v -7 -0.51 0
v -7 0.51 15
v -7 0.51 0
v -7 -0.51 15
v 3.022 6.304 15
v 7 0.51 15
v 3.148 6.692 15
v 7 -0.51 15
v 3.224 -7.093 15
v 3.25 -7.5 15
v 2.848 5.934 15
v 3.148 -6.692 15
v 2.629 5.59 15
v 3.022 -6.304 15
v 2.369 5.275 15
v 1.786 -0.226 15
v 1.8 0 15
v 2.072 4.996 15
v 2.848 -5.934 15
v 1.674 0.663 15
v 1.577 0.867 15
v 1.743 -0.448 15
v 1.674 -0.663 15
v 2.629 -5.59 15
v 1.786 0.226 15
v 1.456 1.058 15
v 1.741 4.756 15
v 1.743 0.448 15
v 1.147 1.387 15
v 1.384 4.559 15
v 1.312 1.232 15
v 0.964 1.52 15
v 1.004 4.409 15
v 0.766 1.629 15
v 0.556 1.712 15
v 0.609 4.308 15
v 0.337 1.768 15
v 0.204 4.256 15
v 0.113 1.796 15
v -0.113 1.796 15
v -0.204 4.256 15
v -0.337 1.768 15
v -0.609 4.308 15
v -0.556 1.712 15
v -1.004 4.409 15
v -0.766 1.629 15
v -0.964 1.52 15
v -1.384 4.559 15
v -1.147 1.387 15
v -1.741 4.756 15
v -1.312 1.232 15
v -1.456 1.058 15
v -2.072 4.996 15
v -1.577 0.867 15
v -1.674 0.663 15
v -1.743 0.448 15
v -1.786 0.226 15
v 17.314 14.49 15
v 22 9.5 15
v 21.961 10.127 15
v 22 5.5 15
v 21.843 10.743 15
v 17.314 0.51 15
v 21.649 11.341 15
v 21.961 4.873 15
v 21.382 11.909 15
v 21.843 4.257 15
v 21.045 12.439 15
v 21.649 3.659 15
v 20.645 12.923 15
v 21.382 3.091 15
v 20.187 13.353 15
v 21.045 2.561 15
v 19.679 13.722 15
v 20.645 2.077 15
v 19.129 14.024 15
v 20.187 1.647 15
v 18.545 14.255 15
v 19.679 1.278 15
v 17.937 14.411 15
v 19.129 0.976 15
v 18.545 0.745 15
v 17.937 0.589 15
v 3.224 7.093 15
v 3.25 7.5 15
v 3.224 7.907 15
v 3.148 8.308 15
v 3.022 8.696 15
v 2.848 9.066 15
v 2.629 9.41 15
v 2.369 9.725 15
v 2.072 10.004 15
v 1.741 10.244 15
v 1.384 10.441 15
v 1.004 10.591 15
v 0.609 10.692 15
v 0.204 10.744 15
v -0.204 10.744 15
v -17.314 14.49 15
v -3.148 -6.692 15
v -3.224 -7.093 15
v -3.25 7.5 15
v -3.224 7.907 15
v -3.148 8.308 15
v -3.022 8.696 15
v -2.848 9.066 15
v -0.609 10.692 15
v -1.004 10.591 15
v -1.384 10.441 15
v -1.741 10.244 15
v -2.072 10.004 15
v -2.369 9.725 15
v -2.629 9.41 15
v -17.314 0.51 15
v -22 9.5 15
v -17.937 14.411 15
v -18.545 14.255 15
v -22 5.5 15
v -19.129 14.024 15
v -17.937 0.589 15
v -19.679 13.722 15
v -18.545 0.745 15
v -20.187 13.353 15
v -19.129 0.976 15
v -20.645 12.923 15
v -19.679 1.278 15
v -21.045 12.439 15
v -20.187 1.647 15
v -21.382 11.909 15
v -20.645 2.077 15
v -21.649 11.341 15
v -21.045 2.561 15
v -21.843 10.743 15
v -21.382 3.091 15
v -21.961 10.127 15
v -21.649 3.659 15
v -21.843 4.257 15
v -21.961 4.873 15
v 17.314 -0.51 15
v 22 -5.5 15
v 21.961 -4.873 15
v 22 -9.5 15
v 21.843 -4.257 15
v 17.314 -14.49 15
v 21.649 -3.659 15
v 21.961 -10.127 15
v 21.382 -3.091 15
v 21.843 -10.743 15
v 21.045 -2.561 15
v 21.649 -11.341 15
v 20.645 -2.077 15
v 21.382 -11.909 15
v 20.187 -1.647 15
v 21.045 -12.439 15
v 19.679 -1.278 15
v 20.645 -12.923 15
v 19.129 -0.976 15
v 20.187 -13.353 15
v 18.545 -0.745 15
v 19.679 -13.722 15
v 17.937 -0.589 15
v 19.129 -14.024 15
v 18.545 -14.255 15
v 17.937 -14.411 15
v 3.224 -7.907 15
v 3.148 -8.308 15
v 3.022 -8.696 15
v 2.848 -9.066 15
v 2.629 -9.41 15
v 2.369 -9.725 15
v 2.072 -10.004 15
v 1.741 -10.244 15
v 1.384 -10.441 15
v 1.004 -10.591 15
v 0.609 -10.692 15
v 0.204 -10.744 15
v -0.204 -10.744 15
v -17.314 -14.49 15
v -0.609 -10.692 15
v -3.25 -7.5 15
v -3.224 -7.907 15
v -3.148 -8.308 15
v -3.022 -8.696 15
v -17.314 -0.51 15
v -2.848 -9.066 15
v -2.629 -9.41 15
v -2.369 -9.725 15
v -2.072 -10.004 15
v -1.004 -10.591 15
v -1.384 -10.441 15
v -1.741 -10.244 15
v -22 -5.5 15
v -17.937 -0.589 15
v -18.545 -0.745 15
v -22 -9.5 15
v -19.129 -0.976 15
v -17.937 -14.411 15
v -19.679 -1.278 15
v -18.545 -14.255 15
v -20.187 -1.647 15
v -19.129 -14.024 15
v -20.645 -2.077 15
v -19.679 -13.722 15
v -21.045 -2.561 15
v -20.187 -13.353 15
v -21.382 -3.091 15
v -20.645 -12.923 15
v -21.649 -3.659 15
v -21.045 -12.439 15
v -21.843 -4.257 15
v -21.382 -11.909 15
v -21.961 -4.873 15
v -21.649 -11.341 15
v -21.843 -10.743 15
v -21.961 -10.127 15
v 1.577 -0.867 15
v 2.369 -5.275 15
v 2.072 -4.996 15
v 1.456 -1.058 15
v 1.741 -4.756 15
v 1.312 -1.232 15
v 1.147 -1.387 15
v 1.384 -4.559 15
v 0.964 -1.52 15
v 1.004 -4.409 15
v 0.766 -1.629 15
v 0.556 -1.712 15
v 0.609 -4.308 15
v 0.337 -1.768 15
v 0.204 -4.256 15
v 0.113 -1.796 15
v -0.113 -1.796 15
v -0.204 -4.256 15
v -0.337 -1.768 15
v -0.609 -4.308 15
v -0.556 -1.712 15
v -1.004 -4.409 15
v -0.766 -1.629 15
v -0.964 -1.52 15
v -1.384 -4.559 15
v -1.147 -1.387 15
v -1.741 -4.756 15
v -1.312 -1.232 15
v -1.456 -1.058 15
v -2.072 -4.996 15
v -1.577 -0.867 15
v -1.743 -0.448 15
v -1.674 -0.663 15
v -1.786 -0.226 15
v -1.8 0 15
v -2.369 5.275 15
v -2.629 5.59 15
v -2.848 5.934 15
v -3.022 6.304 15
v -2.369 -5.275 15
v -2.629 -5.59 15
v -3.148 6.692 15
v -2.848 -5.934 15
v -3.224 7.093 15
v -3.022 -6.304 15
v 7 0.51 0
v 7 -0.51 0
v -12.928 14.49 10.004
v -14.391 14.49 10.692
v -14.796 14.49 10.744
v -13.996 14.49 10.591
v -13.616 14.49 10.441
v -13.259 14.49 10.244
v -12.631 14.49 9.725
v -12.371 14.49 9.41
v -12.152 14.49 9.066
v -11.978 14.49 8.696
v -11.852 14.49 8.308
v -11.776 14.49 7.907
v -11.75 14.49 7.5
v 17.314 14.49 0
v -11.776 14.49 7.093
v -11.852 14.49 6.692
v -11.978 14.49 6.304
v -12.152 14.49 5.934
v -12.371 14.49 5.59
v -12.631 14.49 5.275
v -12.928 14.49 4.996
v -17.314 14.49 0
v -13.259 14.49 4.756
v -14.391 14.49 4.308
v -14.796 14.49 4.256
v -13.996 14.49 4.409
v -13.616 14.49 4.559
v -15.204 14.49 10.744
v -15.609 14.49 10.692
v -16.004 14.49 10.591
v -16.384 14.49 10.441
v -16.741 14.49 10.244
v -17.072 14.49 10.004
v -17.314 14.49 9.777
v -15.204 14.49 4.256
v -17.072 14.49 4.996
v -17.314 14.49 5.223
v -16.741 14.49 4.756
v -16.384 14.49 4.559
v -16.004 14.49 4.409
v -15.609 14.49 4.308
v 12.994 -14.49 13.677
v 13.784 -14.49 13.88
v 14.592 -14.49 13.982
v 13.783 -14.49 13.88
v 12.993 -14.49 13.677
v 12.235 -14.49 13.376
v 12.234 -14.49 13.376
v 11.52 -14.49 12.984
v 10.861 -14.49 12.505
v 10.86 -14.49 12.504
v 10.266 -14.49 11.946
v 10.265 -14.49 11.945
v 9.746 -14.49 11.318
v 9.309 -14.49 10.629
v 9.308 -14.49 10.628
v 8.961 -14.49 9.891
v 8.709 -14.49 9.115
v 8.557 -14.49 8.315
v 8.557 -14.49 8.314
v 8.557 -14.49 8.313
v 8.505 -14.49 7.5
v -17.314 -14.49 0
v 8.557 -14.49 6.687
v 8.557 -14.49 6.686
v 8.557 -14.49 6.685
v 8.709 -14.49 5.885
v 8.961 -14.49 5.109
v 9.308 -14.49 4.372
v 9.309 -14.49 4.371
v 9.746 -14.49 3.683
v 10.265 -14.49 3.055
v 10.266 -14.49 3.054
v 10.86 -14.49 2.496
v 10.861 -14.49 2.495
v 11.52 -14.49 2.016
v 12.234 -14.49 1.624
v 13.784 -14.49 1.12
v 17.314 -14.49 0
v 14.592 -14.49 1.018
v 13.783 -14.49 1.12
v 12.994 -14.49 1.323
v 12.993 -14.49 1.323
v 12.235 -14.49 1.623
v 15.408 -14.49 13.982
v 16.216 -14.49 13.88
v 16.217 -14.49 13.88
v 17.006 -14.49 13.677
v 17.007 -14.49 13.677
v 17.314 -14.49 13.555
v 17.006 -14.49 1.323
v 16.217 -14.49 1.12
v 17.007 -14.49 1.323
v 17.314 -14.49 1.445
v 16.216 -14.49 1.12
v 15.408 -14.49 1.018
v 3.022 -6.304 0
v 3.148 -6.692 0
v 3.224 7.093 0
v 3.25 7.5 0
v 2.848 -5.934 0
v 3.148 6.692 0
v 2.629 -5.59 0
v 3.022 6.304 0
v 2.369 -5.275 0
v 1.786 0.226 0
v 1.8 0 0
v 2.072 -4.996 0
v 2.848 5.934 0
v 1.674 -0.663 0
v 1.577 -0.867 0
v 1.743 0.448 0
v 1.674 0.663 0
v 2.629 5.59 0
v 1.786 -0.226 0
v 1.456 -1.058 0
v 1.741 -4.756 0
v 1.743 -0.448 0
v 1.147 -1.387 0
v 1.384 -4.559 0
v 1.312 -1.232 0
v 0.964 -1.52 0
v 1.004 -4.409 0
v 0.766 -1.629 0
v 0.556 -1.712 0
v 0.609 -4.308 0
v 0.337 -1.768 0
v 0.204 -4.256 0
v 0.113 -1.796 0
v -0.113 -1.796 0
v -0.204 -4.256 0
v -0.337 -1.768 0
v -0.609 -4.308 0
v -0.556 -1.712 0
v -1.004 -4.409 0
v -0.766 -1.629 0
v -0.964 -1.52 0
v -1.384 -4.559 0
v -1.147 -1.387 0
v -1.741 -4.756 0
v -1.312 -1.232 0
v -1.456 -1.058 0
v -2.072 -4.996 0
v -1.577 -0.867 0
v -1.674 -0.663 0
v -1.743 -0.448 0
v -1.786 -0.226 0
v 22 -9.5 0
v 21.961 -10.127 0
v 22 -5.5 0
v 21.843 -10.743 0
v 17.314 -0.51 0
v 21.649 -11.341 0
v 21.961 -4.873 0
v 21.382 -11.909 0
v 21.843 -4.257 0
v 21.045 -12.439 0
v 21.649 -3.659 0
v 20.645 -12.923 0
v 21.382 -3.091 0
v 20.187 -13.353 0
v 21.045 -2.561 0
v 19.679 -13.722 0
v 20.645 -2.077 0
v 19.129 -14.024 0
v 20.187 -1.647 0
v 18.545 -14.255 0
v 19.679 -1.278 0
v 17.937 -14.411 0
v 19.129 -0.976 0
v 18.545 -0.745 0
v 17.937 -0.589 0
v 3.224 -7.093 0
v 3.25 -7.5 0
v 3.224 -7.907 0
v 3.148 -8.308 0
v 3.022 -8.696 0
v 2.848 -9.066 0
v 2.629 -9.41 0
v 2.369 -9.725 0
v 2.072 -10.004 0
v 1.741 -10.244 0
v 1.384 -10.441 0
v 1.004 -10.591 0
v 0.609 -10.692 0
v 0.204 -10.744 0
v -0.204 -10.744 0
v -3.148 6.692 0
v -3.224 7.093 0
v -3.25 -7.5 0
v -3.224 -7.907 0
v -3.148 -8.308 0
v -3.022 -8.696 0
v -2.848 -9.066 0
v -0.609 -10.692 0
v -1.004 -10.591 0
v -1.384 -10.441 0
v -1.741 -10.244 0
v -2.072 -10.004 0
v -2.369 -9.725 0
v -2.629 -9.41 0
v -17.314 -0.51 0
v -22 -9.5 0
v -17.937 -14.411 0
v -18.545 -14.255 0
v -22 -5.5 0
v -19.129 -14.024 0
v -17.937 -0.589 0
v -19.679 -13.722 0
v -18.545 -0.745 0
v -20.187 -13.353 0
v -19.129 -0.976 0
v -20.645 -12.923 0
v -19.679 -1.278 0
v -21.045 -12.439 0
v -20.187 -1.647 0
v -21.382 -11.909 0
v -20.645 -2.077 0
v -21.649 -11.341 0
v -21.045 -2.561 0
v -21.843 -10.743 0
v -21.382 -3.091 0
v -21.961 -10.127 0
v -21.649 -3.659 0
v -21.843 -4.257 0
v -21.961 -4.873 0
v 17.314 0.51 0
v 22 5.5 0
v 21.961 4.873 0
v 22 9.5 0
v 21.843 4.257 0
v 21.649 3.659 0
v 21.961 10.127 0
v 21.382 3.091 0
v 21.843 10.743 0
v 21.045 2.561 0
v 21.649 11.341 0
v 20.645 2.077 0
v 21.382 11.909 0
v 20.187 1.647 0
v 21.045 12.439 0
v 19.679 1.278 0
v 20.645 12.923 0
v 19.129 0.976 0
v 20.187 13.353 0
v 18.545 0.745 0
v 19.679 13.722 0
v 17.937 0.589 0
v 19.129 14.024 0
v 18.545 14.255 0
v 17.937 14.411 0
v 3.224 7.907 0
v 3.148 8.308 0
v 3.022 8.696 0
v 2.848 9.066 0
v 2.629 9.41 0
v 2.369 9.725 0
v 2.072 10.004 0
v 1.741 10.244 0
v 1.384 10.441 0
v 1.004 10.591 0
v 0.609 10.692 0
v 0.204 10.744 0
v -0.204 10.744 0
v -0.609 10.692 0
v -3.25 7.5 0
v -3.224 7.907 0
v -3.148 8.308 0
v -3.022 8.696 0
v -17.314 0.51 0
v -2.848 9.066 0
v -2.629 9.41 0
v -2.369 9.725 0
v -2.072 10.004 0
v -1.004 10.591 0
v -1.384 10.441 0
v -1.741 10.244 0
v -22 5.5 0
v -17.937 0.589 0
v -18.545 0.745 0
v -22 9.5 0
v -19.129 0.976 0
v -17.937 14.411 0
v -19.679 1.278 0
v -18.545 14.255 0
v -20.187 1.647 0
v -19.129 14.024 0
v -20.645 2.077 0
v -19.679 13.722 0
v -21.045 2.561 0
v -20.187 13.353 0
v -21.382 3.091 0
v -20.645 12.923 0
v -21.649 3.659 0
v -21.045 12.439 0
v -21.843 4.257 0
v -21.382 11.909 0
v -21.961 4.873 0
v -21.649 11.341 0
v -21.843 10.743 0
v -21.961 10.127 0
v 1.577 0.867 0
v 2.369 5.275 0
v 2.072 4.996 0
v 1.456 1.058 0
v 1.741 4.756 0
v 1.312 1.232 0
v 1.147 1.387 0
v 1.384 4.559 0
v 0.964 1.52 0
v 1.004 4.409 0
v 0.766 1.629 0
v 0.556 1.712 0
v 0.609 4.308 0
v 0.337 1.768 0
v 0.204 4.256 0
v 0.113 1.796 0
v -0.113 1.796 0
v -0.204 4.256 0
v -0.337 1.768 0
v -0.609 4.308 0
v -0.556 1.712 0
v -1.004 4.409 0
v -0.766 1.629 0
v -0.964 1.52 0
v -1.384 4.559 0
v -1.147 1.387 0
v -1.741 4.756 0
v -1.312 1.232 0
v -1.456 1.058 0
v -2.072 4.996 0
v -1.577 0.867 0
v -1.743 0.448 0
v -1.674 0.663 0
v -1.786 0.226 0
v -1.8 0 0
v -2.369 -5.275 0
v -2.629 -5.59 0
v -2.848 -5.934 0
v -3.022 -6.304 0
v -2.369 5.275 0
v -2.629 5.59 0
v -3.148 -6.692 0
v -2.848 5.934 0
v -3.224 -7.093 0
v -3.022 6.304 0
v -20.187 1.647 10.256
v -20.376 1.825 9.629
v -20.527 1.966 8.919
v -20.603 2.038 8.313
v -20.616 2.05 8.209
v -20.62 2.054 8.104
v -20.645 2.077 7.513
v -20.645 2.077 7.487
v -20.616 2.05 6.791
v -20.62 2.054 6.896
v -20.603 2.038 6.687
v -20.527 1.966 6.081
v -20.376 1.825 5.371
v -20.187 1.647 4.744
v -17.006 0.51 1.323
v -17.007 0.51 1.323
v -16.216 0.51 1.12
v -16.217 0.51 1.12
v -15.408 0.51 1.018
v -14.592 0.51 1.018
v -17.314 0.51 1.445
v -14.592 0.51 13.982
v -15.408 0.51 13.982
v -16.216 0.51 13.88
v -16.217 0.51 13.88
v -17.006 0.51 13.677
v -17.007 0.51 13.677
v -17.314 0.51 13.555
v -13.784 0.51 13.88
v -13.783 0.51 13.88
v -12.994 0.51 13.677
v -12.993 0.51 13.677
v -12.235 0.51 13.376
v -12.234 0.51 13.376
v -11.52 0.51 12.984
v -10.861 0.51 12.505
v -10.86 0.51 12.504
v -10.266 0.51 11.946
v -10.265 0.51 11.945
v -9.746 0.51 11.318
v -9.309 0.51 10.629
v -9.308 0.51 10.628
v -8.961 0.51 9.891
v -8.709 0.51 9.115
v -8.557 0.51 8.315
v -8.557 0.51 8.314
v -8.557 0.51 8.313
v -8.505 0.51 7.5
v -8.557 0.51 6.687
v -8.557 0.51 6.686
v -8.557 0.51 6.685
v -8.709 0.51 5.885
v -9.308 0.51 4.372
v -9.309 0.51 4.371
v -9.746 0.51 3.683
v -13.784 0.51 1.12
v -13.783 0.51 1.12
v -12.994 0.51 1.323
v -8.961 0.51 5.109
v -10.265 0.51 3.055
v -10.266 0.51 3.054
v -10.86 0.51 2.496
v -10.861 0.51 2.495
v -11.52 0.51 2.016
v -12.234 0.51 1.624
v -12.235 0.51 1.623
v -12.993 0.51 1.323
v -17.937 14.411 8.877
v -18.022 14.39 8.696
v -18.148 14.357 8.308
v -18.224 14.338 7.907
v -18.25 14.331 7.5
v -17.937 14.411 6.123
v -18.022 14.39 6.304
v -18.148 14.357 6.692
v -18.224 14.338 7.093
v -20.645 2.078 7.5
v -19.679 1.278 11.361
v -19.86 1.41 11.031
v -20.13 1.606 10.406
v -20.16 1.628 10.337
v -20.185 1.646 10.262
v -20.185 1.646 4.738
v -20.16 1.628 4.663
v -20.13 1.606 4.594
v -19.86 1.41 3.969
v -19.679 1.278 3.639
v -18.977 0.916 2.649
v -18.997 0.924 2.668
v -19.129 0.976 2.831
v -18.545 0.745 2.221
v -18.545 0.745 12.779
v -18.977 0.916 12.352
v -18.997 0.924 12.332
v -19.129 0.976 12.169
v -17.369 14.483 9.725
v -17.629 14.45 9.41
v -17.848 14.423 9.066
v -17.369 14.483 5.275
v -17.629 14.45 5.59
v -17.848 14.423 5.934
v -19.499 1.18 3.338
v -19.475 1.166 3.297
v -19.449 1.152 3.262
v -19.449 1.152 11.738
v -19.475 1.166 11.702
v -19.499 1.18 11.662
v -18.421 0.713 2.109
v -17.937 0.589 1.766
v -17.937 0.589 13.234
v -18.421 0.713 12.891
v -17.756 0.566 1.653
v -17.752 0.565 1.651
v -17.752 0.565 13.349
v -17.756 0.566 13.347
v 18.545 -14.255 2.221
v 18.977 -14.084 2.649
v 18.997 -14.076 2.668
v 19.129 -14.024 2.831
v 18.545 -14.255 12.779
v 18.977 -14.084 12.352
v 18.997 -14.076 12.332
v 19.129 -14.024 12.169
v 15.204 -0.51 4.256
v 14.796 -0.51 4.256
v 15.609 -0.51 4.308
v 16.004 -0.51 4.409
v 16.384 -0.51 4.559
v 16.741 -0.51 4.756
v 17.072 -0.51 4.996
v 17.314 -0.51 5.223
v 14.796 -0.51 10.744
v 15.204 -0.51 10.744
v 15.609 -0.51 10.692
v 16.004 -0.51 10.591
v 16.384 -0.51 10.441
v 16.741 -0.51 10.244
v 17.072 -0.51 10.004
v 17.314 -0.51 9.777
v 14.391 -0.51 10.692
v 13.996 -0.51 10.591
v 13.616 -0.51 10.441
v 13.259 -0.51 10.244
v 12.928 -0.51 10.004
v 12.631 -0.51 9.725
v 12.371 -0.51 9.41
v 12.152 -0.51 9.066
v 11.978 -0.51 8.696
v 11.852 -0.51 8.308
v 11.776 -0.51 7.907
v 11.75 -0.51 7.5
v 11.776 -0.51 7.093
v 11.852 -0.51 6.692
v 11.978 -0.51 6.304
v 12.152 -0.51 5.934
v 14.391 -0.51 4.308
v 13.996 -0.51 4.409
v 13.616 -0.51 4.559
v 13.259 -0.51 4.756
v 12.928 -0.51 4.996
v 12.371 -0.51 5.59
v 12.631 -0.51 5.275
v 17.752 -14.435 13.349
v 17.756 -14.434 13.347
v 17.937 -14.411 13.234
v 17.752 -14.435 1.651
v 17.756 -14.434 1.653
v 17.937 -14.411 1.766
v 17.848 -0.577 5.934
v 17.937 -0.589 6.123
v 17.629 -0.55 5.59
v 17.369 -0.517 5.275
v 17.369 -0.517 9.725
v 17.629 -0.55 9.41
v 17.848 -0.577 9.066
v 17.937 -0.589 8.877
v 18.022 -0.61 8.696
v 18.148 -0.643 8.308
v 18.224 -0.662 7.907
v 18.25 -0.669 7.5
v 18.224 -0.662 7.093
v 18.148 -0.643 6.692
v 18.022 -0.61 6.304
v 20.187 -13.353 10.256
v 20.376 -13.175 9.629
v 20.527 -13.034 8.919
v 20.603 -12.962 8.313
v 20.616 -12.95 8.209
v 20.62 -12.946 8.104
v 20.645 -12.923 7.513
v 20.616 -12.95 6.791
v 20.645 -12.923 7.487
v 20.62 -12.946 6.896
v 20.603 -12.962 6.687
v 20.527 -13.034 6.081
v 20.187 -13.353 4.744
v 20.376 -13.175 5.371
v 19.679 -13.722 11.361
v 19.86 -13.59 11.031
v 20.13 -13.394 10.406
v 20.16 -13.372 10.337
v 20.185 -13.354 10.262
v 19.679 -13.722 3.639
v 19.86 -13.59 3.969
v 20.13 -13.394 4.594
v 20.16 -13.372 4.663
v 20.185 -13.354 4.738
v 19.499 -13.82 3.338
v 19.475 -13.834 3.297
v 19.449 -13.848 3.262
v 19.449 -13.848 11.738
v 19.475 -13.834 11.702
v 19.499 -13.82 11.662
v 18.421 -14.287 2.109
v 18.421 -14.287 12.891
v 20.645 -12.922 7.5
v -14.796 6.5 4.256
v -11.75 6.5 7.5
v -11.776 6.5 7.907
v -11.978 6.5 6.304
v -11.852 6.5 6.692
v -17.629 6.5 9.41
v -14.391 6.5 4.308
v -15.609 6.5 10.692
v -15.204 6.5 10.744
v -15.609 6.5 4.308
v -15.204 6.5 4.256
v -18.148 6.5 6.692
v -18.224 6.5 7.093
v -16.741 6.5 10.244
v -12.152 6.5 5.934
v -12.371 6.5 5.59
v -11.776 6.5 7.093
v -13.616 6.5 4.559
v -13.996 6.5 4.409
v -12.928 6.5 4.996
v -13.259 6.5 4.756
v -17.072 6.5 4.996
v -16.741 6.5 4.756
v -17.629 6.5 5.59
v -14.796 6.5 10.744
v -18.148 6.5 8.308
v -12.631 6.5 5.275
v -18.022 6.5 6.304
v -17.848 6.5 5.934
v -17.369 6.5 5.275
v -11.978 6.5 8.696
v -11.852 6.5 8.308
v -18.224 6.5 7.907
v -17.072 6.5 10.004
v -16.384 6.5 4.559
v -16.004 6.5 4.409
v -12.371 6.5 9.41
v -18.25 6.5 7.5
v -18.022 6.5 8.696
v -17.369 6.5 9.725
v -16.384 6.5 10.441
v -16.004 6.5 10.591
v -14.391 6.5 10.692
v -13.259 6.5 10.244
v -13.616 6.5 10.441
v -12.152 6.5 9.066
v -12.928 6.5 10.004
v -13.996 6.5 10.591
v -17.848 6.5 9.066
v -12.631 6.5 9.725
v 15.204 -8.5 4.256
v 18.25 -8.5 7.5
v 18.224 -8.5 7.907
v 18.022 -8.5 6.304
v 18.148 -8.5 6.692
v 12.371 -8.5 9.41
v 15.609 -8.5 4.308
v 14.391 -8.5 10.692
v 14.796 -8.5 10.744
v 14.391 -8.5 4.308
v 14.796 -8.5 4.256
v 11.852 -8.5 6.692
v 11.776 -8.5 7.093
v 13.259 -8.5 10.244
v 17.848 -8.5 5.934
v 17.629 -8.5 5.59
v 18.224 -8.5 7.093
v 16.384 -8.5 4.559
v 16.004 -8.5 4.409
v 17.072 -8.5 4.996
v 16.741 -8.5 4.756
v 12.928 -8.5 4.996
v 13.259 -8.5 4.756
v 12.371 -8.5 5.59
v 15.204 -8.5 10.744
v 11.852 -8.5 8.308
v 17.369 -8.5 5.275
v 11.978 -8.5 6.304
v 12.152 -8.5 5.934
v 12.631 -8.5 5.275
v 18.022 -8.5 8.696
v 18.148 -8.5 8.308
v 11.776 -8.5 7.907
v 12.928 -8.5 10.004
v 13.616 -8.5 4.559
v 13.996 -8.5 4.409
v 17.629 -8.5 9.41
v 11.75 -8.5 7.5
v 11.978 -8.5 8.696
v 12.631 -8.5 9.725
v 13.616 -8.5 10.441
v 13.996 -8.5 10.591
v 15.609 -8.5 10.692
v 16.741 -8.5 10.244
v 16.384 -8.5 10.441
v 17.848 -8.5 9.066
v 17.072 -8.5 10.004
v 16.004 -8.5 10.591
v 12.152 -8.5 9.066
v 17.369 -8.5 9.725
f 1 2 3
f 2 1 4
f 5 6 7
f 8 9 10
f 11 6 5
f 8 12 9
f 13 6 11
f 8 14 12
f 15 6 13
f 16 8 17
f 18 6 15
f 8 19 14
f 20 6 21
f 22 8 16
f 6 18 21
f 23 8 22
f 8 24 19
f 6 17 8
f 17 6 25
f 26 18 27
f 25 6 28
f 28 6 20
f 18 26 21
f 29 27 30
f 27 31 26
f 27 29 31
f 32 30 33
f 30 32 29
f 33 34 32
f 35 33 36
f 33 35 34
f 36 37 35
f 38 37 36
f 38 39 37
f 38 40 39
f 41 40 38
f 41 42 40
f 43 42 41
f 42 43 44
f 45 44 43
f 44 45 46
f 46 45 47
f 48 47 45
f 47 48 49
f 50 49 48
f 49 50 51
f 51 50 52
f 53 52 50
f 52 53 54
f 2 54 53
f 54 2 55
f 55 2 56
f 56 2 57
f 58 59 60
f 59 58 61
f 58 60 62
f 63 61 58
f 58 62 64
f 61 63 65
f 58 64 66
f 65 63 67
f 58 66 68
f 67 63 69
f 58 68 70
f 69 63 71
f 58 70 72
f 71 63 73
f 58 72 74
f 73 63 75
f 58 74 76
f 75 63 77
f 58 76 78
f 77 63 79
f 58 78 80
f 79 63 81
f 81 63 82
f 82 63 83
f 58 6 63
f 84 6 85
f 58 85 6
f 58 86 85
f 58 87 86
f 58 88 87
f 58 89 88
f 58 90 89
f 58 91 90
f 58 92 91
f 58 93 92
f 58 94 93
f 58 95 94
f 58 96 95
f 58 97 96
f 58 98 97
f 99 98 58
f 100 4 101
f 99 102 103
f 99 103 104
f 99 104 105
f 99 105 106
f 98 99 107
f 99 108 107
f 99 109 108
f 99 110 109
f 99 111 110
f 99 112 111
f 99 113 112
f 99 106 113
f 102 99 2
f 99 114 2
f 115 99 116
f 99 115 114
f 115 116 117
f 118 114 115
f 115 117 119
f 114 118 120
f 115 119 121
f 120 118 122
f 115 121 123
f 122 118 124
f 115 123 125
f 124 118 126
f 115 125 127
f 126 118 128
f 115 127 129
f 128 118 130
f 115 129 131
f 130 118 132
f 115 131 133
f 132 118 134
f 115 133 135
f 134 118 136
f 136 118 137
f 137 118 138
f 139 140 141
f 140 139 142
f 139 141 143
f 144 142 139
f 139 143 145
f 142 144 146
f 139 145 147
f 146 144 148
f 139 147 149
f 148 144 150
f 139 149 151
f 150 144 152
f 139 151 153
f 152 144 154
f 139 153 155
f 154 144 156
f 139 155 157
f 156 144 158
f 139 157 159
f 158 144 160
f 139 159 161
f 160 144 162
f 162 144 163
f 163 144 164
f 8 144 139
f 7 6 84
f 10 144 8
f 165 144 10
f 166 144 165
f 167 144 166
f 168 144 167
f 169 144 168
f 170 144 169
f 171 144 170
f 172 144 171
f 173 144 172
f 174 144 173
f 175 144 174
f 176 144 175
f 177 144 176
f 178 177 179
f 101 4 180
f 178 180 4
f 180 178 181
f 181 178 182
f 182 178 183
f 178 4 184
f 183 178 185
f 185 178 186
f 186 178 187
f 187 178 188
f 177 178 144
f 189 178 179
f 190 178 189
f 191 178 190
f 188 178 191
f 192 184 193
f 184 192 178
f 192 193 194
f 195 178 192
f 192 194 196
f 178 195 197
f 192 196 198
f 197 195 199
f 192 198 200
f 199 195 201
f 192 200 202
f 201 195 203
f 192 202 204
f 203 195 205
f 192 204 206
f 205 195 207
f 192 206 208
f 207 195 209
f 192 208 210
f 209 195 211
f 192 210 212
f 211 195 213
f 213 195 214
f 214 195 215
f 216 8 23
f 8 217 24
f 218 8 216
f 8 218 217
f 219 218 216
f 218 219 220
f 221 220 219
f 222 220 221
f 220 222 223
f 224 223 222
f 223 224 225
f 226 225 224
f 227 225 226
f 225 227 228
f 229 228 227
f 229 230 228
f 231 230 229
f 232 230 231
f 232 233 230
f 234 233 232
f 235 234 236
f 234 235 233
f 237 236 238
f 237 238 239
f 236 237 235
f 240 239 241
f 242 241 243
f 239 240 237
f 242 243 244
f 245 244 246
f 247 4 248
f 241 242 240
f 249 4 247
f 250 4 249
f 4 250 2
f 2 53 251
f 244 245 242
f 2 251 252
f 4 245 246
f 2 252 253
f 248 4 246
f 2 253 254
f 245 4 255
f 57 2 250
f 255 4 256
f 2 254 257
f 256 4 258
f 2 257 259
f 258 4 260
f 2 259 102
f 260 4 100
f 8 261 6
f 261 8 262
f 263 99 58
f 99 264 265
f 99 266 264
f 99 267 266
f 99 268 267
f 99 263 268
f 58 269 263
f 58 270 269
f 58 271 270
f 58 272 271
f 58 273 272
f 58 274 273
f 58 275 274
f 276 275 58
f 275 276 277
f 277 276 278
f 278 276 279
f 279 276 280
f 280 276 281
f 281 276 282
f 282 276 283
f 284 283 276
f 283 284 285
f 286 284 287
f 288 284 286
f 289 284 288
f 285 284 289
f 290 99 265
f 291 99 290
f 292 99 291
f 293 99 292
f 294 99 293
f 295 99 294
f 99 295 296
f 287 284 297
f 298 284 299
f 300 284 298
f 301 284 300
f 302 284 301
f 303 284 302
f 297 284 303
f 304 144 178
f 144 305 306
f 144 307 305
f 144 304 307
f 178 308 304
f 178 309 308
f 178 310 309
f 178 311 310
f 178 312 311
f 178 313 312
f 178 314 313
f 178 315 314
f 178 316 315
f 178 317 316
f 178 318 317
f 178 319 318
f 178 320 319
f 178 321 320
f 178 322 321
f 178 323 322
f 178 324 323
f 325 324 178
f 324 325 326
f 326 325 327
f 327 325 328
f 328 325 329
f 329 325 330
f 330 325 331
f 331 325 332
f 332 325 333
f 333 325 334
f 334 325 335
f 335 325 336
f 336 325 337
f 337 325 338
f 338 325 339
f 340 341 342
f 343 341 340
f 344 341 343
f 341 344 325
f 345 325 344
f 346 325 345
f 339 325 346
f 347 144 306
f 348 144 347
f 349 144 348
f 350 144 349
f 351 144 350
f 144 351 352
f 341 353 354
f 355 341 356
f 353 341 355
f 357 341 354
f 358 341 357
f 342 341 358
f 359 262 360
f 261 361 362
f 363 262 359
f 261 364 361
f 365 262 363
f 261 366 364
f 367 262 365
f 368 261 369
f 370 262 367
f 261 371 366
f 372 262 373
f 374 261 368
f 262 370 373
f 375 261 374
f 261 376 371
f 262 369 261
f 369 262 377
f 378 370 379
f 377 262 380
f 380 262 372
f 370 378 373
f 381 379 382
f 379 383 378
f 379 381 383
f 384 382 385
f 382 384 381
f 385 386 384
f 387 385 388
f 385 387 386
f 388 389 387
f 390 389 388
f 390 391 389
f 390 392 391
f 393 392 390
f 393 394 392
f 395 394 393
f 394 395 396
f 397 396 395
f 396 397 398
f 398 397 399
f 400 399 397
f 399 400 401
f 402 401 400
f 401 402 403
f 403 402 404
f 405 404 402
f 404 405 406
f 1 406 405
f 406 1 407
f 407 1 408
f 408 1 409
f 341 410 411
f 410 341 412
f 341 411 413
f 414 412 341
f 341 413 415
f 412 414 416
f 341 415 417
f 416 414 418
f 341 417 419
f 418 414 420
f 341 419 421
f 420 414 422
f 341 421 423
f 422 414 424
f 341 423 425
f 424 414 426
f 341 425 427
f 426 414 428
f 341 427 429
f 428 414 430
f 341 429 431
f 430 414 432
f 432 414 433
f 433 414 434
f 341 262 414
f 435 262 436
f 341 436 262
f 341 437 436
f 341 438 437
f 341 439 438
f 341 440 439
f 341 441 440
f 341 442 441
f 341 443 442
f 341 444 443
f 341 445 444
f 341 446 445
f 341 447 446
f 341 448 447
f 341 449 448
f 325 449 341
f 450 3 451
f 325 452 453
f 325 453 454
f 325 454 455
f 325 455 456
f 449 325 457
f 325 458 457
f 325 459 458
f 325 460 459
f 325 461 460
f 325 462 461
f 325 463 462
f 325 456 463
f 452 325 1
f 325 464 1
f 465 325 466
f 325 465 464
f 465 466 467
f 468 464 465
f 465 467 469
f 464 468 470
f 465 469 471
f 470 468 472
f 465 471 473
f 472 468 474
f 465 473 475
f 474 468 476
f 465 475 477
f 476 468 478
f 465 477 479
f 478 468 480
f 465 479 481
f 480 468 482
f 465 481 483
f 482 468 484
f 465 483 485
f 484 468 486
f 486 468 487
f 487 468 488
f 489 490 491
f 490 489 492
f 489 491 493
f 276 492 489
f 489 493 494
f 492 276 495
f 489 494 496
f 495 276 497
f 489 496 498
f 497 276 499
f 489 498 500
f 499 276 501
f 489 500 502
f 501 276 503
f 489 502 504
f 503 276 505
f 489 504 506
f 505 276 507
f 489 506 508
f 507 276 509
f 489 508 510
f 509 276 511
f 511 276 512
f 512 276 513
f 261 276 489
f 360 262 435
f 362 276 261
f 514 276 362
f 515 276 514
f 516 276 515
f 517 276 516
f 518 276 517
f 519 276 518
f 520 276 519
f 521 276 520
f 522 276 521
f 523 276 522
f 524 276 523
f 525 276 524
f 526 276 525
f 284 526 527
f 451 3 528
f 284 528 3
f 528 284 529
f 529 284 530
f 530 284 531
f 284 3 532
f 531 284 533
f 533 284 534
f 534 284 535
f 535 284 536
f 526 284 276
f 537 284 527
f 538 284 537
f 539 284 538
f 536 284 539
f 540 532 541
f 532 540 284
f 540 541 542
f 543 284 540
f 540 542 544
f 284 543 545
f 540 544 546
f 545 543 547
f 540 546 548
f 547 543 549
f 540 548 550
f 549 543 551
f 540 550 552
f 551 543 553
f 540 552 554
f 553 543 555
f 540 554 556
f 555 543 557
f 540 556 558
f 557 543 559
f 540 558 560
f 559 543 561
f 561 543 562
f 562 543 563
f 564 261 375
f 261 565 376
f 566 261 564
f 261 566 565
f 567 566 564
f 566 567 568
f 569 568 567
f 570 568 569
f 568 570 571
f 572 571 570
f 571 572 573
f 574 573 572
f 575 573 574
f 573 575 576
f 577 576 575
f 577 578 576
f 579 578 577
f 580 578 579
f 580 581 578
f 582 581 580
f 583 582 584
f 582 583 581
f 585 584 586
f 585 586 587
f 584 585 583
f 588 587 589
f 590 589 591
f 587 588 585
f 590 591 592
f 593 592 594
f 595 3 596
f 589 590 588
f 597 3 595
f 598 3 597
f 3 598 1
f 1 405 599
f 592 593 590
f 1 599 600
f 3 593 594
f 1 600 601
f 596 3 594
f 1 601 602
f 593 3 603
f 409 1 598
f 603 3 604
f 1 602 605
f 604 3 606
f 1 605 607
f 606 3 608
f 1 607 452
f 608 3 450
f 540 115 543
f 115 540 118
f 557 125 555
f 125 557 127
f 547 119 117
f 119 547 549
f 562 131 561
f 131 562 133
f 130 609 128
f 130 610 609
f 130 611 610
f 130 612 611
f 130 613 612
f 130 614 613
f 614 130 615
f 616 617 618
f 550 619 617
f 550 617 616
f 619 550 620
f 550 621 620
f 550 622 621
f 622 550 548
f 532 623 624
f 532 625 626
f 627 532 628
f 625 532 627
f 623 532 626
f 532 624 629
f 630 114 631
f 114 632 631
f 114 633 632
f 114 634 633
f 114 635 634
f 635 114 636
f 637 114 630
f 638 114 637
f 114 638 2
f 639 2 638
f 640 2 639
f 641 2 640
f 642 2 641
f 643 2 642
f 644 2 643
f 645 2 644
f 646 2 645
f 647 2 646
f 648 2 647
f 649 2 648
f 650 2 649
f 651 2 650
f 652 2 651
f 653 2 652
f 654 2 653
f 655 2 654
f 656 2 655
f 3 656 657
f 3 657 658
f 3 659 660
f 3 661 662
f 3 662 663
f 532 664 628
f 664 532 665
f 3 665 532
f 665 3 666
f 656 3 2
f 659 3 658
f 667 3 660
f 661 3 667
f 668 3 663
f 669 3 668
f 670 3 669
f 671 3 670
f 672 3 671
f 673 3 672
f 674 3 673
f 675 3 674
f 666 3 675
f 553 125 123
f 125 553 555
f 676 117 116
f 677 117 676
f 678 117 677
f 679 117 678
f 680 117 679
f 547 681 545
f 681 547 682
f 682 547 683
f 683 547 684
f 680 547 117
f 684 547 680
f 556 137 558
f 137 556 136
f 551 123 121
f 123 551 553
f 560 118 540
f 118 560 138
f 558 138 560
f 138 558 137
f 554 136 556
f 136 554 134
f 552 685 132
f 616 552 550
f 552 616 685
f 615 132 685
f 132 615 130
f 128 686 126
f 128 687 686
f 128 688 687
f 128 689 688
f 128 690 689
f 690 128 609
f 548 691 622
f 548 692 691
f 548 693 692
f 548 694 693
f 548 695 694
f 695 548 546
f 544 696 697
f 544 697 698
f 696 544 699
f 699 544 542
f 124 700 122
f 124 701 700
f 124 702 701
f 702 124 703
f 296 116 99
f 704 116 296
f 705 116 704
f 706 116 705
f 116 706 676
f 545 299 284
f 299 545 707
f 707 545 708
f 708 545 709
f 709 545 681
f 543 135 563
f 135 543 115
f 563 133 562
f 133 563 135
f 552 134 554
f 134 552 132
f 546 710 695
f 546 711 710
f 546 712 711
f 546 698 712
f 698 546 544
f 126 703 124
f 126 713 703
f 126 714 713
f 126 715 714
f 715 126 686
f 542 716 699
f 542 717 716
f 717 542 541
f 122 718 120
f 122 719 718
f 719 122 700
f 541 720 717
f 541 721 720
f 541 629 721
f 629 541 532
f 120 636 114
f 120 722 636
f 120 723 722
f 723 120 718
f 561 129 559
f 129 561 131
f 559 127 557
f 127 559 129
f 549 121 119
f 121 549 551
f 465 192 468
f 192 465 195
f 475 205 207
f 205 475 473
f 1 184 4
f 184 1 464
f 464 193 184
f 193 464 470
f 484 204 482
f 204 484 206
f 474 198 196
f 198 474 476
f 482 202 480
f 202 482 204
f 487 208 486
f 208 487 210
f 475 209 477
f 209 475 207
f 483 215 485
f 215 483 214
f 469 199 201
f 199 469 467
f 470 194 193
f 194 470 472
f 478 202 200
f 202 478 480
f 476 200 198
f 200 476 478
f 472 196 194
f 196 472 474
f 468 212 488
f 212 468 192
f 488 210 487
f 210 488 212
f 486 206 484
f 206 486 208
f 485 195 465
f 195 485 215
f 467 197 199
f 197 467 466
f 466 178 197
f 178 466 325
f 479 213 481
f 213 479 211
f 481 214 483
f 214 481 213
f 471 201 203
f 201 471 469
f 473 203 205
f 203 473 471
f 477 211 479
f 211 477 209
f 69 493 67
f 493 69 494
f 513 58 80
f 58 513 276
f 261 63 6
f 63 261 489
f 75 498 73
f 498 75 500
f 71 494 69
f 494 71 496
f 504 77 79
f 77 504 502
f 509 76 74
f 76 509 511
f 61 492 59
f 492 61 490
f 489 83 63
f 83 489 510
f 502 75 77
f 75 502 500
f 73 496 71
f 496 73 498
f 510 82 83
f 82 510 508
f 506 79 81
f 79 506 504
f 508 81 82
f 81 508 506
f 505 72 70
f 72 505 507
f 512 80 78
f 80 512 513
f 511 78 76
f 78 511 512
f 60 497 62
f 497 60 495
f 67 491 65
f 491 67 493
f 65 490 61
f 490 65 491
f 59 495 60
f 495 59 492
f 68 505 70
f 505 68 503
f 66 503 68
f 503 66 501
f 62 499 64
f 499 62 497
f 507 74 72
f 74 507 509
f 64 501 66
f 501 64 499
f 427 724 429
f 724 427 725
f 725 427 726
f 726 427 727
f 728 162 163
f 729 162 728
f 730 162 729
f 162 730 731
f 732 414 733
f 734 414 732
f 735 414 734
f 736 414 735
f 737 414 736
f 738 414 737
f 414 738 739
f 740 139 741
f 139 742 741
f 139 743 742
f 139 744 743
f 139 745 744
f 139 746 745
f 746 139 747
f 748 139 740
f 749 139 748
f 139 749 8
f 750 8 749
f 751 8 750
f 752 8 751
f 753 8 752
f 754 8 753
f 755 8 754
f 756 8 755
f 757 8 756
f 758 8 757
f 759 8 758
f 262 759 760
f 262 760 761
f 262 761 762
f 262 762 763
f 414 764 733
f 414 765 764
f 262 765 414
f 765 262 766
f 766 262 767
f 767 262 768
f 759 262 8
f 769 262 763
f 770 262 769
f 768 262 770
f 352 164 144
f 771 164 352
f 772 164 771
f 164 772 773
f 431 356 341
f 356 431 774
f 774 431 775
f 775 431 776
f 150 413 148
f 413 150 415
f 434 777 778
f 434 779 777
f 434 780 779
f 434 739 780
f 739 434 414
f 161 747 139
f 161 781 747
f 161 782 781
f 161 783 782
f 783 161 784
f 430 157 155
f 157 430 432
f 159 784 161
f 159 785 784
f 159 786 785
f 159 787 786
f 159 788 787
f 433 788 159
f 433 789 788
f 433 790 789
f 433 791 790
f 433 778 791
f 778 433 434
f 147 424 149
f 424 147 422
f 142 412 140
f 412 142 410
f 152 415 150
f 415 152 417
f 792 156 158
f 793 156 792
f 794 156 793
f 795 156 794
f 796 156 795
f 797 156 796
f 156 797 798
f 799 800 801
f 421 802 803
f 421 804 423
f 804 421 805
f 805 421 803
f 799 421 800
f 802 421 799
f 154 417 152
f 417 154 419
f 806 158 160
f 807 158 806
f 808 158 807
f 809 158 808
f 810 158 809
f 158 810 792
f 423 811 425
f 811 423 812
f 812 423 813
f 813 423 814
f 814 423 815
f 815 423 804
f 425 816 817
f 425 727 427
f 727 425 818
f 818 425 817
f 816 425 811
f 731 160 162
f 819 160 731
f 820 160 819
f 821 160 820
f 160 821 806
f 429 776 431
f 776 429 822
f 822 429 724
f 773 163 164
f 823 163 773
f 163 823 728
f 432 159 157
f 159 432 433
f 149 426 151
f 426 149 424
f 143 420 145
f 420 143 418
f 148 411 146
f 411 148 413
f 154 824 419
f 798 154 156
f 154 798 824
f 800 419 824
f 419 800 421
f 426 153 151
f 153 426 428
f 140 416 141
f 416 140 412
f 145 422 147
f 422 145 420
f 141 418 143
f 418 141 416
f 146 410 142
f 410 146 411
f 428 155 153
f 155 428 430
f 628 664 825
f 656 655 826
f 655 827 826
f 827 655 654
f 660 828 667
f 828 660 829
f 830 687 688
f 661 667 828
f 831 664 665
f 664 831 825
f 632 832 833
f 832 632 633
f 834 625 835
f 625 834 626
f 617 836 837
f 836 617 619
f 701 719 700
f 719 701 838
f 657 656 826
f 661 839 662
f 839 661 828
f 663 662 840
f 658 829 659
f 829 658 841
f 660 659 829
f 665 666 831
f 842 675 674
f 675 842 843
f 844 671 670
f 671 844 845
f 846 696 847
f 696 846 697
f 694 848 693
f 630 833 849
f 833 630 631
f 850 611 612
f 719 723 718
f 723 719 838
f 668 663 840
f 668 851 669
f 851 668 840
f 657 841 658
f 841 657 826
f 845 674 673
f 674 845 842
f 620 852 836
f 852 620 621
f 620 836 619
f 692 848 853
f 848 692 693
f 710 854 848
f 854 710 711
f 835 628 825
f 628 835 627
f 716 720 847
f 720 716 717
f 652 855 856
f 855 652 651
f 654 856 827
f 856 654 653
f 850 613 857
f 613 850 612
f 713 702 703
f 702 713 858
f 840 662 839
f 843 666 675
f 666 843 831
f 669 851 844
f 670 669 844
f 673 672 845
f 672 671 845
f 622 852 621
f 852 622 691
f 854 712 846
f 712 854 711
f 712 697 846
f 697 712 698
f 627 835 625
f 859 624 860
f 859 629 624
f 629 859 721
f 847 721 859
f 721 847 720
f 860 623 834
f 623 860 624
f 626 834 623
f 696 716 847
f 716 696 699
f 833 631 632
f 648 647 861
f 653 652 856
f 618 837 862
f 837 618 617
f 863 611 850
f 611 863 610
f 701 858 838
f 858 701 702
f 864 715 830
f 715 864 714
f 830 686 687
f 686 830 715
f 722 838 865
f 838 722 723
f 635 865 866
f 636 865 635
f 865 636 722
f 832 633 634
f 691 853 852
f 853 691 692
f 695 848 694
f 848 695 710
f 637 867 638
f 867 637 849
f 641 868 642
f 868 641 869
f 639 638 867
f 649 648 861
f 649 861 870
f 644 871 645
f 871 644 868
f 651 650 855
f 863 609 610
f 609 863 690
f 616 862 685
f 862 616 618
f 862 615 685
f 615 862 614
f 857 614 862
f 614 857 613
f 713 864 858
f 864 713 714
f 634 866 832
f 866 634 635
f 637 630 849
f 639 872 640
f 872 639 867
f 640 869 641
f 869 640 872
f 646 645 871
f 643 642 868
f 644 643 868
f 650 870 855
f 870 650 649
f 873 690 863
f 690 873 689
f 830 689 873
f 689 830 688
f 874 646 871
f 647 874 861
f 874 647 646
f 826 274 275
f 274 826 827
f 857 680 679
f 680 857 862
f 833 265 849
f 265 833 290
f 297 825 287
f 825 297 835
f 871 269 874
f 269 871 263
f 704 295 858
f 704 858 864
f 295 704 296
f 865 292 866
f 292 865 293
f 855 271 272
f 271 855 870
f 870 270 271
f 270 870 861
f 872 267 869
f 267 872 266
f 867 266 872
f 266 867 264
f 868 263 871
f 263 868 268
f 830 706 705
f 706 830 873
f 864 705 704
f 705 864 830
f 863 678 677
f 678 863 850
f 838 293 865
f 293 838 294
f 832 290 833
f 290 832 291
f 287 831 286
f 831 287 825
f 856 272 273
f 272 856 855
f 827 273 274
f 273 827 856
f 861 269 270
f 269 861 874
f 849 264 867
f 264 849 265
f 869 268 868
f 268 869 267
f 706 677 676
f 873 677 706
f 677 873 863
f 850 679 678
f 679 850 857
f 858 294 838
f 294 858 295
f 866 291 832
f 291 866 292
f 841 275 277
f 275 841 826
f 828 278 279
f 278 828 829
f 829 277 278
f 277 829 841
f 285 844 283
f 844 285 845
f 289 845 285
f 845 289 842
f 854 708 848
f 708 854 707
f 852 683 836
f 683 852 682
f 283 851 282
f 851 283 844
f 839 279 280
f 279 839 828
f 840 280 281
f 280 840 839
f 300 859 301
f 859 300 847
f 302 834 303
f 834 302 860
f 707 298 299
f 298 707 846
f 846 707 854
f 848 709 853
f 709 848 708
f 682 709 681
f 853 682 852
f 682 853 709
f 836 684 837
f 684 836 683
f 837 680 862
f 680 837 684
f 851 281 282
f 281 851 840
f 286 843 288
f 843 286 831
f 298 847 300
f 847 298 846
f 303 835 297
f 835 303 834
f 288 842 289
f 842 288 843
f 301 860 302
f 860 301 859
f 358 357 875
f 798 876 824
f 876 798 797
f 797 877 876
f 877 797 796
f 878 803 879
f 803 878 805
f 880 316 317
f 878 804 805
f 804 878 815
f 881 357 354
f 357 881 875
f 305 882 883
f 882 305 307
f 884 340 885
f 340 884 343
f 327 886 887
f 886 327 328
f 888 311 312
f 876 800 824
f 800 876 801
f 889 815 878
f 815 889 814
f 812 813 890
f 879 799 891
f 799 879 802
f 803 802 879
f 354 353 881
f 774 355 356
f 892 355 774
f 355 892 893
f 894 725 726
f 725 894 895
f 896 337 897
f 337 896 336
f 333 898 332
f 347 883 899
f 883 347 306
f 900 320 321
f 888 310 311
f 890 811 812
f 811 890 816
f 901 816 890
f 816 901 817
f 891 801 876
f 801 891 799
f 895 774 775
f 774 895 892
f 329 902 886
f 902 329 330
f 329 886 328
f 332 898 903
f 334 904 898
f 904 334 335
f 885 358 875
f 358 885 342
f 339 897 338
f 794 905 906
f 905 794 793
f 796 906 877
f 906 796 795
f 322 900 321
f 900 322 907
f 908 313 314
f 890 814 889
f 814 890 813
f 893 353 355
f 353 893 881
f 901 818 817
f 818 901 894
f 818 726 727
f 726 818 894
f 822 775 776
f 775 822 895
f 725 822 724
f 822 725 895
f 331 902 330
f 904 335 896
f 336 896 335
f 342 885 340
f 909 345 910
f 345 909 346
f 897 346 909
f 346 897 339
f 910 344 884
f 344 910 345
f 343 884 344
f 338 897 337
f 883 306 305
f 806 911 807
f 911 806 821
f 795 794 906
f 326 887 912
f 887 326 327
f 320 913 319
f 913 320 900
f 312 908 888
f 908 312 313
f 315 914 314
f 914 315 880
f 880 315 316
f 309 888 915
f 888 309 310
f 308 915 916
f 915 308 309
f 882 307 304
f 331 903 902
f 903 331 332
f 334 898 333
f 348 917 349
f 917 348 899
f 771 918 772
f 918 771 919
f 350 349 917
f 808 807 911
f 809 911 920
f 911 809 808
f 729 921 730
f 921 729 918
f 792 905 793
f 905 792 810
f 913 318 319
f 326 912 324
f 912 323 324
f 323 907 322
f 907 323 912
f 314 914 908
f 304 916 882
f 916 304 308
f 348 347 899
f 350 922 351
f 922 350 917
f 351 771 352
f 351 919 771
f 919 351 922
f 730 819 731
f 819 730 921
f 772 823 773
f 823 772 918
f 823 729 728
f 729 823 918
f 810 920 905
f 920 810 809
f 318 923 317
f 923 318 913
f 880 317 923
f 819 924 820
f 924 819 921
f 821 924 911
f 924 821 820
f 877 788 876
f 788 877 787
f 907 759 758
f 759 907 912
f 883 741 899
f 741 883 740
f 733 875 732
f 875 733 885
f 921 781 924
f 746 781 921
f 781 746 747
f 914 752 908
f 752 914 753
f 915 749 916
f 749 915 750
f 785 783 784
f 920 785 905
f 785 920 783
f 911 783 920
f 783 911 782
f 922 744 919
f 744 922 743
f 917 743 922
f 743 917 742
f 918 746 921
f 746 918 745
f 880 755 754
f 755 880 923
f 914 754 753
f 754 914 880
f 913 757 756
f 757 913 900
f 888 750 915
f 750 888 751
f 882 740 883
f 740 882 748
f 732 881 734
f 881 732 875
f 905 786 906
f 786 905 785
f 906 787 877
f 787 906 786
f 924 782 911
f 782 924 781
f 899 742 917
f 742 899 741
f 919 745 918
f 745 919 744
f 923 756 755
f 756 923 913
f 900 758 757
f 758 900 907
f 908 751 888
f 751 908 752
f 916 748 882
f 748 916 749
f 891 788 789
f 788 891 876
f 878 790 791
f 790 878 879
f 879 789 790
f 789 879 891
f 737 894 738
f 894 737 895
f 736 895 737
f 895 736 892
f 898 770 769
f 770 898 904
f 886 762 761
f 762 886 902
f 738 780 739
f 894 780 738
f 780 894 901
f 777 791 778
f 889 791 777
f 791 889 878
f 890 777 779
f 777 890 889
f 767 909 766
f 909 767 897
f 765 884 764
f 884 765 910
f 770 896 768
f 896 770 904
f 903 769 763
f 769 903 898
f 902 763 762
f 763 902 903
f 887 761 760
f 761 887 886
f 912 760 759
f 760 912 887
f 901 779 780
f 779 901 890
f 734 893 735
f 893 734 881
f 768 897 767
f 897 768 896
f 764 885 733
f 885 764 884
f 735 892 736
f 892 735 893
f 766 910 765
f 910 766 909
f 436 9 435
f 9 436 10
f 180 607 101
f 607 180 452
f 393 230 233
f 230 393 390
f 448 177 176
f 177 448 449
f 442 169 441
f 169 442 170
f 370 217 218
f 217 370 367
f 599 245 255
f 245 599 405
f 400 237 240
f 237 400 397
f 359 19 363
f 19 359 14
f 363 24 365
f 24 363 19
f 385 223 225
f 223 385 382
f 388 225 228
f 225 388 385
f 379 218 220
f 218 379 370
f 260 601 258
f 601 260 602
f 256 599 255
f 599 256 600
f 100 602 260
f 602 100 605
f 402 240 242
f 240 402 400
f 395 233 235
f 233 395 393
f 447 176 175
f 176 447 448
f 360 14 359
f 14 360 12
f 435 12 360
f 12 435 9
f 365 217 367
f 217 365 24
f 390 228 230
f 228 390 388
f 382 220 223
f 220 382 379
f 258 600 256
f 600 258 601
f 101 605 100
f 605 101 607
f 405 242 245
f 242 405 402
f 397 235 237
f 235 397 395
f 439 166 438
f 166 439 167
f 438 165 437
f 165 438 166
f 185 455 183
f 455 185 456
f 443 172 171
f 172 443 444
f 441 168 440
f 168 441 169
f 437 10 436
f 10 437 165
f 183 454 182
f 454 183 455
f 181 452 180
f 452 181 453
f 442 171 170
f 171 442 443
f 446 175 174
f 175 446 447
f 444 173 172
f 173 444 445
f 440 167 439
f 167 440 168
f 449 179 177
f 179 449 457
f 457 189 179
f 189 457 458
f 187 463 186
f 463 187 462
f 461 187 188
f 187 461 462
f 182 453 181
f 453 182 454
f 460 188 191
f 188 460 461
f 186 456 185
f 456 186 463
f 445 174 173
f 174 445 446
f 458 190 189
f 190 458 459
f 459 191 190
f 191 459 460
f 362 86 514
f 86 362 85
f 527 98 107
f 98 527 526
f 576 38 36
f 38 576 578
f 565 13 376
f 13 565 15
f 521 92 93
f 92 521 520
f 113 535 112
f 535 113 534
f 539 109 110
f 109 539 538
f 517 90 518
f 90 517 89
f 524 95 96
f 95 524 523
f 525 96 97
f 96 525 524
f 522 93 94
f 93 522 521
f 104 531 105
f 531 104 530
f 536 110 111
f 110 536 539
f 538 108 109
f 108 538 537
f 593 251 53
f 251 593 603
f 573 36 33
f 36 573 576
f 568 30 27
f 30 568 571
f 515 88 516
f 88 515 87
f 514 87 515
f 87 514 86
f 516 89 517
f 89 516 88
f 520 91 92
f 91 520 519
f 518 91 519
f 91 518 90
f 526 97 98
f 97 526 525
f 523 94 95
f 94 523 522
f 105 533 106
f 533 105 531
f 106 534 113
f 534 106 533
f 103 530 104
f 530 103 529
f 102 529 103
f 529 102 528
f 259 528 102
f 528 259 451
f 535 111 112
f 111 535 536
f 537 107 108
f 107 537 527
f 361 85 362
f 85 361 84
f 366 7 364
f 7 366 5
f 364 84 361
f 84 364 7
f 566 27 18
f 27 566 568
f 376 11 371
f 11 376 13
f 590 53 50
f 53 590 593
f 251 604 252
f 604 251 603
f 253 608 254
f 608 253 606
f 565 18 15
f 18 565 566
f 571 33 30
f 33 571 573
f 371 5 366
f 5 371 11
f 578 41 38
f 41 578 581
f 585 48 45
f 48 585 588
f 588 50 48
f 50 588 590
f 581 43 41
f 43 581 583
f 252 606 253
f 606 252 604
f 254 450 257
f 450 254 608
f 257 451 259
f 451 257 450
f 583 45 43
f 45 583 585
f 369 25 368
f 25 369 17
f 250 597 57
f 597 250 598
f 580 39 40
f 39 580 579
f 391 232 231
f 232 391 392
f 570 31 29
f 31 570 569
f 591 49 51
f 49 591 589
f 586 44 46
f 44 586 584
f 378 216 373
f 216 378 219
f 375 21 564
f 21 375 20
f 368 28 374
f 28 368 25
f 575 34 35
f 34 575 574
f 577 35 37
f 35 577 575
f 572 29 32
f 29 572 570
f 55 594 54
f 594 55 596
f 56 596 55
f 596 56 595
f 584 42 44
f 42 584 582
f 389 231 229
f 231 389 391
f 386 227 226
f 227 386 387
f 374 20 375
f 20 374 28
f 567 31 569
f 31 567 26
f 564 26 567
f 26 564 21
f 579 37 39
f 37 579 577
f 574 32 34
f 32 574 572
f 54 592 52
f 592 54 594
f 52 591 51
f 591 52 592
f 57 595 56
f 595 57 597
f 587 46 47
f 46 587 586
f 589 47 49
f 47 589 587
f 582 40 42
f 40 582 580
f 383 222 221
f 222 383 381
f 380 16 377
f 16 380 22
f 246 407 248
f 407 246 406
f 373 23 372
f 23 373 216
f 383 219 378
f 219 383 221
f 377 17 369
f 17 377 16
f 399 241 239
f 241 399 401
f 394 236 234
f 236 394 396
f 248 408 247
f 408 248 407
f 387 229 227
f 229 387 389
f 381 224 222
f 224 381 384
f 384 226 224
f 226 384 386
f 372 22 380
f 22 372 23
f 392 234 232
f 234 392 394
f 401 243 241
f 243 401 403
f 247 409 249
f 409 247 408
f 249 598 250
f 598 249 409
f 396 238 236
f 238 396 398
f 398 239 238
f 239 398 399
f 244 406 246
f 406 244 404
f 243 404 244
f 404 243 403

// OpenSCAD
$fn = 50;


difference() {
	union() {
		hull() {
			translate(v = [-2.0000000000, 9.5000000000, 0]) {
				cylinder(h = 15, r = 5);
			}
			translate(v = [2.0000000000, 9.5000000000, 0]) {
				cylinder(h = 15, r = 5);
			}
			translate(v = [-2.0000000000, -9.5000000000, 0]) {
				cylinder(h = 15, r = 5);
			}
			translate(v = [2.0000000000, -9.5000000000, 0]) {
				cylinder(h = 15, r = 5);
			}
		}
		translate(v = [-7.5000000000, 7.5000000000, 0]) {
			hull() {
				translate(v = [-9.5000000000, 2.0000000000, 0]) {
					cylinder(h = 15, r = 5);
				}
				translate(v = [9.5000000000, 2.0000000000, 0]) {
					cylinder(h = 15, r = 5);
				}
				translate(v = [-9.5000000000, -2.0000000000, 0]) {
					cylinder(h = 15, r = 5);
				}
				translate(v = [9.5000000000, -2.0000000000, 0]) {
					cylinder(h = 15, r = 5);
				}
			}
		}
		translate(v = [-7.5000000000, -7.5000000000, 0]) {
			hull() {
				translate(v = [-9.5000000000, 2.0000000000, 0]) {
					cylinder(h = 15, r = 5);
				}
				translate(v = [9.5000000000, 2.0000000000, 0]) {
					cylinder(h = 15, r = 5);
				}
				translate(v = [-9.5000000000, -2.0000000000, 0]) {
					cylinder(h = 15, r = 5);
				}
				translate(v = [9.5000000000, -2.0000000000, 0]) {
					cylinder(h = 15, r = 5);
				}
			}
		}
		translate(v = [7.5000000000, 7.5000000000, 0]) {
			hull() {
				translate(v = [-9.5000000000, 2.0000000000, 0]) {
					cylinder(h = 15, r = 5);
				}
				translate(v = [9.5000000000, 2.0000000000, 0]) {
					cylinder(h = 15, r = 5);
				}
				translate(v = [-9.5000000000, -2.0000000000, 0]) {
					cylinder(h = 15, r = 5);
				}
				translate(v = [9.5000000000, -2.0000000000, 0]) {
					cylinder(h = 15, r = 5);
				}
			}
		}
		translate(v = [7.5000000000, -7.5000000000, 0]) {
			hull() {
				translate(v = [-9.5000000000, 2.0000000000, 0]) {
					cylinder(h = 15, r = 5);
				}
				translate(v = [9.5000000000, 2.0000000000, 0]) {
					cylinder(h = 15, r = 5);
				}
				translate(v = [-9.5000000000, -2.0000000000, 0]) {
					cylinder(h = 15, r = 5);
				}
				translate(v = [9.5000000000, -2.0000000000, 0]) {
					cylinder(h = 15, r = 5);
				}
			}
		}
	}
	union() {
		translate(v = [-15.0000000000, 0.5000000000, 7.5000000000]) {
			rotate(a = [90, 0, 0]) {
				difference() {
					union() {
						#translate(v = [0, 0, -14.0000000000]) {
							cylinder(h = 14, r = 2.2500000000);
						}
						#translate(v = [0, 0, -6]) {
							cylinder(h = 6, r1 = 3.2500000000, r2 = 6.5000000000);
						}
						#translate(v = [0, 0, -14.0000000000]) {
							cylinder(h = 14, r = 3.2500000000);
						}
						#translate(v = [0, 0, -14.0000000000]) {
							cylinder(h = 14, r = 2.2500000000);
						}
					}
					union();
				}
			}
		}
		translate(v = [15.0000000000, -14.5000000000, 7.5000000000]) {
			rotate(a = [90, 0, 0]) {
				difference() {
					union() {
						#translate(v = [0, 0, -14.0000000000]) {
							cylinder(h = 14, r = 2.2500000000);
						}
						#translate(v = [0, 0, -6]) {
							cylinder(h = 6, r1 = 3.2500000000, r2 = 6.5000000000);
						}
						#translate(v = [0, 0, -14.0000000000]) {
							cylinder(h = 14, r = 3.2500000000);
						}
						#translate(v = [0, 0, -14.0000000000]) {
							cylinder(h = 14, r = 2.2500000000);
						}
					}
					union();
				}
			}
		}
		translate(v = [0.0000000000, -7.5000000000, 0]) {
			translate(v = [0, 0, -100]) {
				cylinder(h = 200, r = 3.2500000000);
			}
		}
		translate(v = [0.0000000000, 7.5000000000, 0]) {
			translate(v = [0, 0, -100]) {
				cylinder(h = 200, r = 3.2500000000);
			}
		}
		translate(v = [0.0000000000, -7.5000000000, 0]) {
			translate(v = [0, 0, -100]) {
				cylinder(h = 200, r = 1.8000000000);
			}
		}
		translate(v = [0, 0, -100]) {
			cylinder(h = 200, r = 1.8000000000);
		}
		translate(v = [0.0000000000, 7.5000000000, 0]) {
			translate(v = [0, 0, -100]) {
				cylinder(h = 200, r = 1.8000000000);
			}
		}
	}
}
